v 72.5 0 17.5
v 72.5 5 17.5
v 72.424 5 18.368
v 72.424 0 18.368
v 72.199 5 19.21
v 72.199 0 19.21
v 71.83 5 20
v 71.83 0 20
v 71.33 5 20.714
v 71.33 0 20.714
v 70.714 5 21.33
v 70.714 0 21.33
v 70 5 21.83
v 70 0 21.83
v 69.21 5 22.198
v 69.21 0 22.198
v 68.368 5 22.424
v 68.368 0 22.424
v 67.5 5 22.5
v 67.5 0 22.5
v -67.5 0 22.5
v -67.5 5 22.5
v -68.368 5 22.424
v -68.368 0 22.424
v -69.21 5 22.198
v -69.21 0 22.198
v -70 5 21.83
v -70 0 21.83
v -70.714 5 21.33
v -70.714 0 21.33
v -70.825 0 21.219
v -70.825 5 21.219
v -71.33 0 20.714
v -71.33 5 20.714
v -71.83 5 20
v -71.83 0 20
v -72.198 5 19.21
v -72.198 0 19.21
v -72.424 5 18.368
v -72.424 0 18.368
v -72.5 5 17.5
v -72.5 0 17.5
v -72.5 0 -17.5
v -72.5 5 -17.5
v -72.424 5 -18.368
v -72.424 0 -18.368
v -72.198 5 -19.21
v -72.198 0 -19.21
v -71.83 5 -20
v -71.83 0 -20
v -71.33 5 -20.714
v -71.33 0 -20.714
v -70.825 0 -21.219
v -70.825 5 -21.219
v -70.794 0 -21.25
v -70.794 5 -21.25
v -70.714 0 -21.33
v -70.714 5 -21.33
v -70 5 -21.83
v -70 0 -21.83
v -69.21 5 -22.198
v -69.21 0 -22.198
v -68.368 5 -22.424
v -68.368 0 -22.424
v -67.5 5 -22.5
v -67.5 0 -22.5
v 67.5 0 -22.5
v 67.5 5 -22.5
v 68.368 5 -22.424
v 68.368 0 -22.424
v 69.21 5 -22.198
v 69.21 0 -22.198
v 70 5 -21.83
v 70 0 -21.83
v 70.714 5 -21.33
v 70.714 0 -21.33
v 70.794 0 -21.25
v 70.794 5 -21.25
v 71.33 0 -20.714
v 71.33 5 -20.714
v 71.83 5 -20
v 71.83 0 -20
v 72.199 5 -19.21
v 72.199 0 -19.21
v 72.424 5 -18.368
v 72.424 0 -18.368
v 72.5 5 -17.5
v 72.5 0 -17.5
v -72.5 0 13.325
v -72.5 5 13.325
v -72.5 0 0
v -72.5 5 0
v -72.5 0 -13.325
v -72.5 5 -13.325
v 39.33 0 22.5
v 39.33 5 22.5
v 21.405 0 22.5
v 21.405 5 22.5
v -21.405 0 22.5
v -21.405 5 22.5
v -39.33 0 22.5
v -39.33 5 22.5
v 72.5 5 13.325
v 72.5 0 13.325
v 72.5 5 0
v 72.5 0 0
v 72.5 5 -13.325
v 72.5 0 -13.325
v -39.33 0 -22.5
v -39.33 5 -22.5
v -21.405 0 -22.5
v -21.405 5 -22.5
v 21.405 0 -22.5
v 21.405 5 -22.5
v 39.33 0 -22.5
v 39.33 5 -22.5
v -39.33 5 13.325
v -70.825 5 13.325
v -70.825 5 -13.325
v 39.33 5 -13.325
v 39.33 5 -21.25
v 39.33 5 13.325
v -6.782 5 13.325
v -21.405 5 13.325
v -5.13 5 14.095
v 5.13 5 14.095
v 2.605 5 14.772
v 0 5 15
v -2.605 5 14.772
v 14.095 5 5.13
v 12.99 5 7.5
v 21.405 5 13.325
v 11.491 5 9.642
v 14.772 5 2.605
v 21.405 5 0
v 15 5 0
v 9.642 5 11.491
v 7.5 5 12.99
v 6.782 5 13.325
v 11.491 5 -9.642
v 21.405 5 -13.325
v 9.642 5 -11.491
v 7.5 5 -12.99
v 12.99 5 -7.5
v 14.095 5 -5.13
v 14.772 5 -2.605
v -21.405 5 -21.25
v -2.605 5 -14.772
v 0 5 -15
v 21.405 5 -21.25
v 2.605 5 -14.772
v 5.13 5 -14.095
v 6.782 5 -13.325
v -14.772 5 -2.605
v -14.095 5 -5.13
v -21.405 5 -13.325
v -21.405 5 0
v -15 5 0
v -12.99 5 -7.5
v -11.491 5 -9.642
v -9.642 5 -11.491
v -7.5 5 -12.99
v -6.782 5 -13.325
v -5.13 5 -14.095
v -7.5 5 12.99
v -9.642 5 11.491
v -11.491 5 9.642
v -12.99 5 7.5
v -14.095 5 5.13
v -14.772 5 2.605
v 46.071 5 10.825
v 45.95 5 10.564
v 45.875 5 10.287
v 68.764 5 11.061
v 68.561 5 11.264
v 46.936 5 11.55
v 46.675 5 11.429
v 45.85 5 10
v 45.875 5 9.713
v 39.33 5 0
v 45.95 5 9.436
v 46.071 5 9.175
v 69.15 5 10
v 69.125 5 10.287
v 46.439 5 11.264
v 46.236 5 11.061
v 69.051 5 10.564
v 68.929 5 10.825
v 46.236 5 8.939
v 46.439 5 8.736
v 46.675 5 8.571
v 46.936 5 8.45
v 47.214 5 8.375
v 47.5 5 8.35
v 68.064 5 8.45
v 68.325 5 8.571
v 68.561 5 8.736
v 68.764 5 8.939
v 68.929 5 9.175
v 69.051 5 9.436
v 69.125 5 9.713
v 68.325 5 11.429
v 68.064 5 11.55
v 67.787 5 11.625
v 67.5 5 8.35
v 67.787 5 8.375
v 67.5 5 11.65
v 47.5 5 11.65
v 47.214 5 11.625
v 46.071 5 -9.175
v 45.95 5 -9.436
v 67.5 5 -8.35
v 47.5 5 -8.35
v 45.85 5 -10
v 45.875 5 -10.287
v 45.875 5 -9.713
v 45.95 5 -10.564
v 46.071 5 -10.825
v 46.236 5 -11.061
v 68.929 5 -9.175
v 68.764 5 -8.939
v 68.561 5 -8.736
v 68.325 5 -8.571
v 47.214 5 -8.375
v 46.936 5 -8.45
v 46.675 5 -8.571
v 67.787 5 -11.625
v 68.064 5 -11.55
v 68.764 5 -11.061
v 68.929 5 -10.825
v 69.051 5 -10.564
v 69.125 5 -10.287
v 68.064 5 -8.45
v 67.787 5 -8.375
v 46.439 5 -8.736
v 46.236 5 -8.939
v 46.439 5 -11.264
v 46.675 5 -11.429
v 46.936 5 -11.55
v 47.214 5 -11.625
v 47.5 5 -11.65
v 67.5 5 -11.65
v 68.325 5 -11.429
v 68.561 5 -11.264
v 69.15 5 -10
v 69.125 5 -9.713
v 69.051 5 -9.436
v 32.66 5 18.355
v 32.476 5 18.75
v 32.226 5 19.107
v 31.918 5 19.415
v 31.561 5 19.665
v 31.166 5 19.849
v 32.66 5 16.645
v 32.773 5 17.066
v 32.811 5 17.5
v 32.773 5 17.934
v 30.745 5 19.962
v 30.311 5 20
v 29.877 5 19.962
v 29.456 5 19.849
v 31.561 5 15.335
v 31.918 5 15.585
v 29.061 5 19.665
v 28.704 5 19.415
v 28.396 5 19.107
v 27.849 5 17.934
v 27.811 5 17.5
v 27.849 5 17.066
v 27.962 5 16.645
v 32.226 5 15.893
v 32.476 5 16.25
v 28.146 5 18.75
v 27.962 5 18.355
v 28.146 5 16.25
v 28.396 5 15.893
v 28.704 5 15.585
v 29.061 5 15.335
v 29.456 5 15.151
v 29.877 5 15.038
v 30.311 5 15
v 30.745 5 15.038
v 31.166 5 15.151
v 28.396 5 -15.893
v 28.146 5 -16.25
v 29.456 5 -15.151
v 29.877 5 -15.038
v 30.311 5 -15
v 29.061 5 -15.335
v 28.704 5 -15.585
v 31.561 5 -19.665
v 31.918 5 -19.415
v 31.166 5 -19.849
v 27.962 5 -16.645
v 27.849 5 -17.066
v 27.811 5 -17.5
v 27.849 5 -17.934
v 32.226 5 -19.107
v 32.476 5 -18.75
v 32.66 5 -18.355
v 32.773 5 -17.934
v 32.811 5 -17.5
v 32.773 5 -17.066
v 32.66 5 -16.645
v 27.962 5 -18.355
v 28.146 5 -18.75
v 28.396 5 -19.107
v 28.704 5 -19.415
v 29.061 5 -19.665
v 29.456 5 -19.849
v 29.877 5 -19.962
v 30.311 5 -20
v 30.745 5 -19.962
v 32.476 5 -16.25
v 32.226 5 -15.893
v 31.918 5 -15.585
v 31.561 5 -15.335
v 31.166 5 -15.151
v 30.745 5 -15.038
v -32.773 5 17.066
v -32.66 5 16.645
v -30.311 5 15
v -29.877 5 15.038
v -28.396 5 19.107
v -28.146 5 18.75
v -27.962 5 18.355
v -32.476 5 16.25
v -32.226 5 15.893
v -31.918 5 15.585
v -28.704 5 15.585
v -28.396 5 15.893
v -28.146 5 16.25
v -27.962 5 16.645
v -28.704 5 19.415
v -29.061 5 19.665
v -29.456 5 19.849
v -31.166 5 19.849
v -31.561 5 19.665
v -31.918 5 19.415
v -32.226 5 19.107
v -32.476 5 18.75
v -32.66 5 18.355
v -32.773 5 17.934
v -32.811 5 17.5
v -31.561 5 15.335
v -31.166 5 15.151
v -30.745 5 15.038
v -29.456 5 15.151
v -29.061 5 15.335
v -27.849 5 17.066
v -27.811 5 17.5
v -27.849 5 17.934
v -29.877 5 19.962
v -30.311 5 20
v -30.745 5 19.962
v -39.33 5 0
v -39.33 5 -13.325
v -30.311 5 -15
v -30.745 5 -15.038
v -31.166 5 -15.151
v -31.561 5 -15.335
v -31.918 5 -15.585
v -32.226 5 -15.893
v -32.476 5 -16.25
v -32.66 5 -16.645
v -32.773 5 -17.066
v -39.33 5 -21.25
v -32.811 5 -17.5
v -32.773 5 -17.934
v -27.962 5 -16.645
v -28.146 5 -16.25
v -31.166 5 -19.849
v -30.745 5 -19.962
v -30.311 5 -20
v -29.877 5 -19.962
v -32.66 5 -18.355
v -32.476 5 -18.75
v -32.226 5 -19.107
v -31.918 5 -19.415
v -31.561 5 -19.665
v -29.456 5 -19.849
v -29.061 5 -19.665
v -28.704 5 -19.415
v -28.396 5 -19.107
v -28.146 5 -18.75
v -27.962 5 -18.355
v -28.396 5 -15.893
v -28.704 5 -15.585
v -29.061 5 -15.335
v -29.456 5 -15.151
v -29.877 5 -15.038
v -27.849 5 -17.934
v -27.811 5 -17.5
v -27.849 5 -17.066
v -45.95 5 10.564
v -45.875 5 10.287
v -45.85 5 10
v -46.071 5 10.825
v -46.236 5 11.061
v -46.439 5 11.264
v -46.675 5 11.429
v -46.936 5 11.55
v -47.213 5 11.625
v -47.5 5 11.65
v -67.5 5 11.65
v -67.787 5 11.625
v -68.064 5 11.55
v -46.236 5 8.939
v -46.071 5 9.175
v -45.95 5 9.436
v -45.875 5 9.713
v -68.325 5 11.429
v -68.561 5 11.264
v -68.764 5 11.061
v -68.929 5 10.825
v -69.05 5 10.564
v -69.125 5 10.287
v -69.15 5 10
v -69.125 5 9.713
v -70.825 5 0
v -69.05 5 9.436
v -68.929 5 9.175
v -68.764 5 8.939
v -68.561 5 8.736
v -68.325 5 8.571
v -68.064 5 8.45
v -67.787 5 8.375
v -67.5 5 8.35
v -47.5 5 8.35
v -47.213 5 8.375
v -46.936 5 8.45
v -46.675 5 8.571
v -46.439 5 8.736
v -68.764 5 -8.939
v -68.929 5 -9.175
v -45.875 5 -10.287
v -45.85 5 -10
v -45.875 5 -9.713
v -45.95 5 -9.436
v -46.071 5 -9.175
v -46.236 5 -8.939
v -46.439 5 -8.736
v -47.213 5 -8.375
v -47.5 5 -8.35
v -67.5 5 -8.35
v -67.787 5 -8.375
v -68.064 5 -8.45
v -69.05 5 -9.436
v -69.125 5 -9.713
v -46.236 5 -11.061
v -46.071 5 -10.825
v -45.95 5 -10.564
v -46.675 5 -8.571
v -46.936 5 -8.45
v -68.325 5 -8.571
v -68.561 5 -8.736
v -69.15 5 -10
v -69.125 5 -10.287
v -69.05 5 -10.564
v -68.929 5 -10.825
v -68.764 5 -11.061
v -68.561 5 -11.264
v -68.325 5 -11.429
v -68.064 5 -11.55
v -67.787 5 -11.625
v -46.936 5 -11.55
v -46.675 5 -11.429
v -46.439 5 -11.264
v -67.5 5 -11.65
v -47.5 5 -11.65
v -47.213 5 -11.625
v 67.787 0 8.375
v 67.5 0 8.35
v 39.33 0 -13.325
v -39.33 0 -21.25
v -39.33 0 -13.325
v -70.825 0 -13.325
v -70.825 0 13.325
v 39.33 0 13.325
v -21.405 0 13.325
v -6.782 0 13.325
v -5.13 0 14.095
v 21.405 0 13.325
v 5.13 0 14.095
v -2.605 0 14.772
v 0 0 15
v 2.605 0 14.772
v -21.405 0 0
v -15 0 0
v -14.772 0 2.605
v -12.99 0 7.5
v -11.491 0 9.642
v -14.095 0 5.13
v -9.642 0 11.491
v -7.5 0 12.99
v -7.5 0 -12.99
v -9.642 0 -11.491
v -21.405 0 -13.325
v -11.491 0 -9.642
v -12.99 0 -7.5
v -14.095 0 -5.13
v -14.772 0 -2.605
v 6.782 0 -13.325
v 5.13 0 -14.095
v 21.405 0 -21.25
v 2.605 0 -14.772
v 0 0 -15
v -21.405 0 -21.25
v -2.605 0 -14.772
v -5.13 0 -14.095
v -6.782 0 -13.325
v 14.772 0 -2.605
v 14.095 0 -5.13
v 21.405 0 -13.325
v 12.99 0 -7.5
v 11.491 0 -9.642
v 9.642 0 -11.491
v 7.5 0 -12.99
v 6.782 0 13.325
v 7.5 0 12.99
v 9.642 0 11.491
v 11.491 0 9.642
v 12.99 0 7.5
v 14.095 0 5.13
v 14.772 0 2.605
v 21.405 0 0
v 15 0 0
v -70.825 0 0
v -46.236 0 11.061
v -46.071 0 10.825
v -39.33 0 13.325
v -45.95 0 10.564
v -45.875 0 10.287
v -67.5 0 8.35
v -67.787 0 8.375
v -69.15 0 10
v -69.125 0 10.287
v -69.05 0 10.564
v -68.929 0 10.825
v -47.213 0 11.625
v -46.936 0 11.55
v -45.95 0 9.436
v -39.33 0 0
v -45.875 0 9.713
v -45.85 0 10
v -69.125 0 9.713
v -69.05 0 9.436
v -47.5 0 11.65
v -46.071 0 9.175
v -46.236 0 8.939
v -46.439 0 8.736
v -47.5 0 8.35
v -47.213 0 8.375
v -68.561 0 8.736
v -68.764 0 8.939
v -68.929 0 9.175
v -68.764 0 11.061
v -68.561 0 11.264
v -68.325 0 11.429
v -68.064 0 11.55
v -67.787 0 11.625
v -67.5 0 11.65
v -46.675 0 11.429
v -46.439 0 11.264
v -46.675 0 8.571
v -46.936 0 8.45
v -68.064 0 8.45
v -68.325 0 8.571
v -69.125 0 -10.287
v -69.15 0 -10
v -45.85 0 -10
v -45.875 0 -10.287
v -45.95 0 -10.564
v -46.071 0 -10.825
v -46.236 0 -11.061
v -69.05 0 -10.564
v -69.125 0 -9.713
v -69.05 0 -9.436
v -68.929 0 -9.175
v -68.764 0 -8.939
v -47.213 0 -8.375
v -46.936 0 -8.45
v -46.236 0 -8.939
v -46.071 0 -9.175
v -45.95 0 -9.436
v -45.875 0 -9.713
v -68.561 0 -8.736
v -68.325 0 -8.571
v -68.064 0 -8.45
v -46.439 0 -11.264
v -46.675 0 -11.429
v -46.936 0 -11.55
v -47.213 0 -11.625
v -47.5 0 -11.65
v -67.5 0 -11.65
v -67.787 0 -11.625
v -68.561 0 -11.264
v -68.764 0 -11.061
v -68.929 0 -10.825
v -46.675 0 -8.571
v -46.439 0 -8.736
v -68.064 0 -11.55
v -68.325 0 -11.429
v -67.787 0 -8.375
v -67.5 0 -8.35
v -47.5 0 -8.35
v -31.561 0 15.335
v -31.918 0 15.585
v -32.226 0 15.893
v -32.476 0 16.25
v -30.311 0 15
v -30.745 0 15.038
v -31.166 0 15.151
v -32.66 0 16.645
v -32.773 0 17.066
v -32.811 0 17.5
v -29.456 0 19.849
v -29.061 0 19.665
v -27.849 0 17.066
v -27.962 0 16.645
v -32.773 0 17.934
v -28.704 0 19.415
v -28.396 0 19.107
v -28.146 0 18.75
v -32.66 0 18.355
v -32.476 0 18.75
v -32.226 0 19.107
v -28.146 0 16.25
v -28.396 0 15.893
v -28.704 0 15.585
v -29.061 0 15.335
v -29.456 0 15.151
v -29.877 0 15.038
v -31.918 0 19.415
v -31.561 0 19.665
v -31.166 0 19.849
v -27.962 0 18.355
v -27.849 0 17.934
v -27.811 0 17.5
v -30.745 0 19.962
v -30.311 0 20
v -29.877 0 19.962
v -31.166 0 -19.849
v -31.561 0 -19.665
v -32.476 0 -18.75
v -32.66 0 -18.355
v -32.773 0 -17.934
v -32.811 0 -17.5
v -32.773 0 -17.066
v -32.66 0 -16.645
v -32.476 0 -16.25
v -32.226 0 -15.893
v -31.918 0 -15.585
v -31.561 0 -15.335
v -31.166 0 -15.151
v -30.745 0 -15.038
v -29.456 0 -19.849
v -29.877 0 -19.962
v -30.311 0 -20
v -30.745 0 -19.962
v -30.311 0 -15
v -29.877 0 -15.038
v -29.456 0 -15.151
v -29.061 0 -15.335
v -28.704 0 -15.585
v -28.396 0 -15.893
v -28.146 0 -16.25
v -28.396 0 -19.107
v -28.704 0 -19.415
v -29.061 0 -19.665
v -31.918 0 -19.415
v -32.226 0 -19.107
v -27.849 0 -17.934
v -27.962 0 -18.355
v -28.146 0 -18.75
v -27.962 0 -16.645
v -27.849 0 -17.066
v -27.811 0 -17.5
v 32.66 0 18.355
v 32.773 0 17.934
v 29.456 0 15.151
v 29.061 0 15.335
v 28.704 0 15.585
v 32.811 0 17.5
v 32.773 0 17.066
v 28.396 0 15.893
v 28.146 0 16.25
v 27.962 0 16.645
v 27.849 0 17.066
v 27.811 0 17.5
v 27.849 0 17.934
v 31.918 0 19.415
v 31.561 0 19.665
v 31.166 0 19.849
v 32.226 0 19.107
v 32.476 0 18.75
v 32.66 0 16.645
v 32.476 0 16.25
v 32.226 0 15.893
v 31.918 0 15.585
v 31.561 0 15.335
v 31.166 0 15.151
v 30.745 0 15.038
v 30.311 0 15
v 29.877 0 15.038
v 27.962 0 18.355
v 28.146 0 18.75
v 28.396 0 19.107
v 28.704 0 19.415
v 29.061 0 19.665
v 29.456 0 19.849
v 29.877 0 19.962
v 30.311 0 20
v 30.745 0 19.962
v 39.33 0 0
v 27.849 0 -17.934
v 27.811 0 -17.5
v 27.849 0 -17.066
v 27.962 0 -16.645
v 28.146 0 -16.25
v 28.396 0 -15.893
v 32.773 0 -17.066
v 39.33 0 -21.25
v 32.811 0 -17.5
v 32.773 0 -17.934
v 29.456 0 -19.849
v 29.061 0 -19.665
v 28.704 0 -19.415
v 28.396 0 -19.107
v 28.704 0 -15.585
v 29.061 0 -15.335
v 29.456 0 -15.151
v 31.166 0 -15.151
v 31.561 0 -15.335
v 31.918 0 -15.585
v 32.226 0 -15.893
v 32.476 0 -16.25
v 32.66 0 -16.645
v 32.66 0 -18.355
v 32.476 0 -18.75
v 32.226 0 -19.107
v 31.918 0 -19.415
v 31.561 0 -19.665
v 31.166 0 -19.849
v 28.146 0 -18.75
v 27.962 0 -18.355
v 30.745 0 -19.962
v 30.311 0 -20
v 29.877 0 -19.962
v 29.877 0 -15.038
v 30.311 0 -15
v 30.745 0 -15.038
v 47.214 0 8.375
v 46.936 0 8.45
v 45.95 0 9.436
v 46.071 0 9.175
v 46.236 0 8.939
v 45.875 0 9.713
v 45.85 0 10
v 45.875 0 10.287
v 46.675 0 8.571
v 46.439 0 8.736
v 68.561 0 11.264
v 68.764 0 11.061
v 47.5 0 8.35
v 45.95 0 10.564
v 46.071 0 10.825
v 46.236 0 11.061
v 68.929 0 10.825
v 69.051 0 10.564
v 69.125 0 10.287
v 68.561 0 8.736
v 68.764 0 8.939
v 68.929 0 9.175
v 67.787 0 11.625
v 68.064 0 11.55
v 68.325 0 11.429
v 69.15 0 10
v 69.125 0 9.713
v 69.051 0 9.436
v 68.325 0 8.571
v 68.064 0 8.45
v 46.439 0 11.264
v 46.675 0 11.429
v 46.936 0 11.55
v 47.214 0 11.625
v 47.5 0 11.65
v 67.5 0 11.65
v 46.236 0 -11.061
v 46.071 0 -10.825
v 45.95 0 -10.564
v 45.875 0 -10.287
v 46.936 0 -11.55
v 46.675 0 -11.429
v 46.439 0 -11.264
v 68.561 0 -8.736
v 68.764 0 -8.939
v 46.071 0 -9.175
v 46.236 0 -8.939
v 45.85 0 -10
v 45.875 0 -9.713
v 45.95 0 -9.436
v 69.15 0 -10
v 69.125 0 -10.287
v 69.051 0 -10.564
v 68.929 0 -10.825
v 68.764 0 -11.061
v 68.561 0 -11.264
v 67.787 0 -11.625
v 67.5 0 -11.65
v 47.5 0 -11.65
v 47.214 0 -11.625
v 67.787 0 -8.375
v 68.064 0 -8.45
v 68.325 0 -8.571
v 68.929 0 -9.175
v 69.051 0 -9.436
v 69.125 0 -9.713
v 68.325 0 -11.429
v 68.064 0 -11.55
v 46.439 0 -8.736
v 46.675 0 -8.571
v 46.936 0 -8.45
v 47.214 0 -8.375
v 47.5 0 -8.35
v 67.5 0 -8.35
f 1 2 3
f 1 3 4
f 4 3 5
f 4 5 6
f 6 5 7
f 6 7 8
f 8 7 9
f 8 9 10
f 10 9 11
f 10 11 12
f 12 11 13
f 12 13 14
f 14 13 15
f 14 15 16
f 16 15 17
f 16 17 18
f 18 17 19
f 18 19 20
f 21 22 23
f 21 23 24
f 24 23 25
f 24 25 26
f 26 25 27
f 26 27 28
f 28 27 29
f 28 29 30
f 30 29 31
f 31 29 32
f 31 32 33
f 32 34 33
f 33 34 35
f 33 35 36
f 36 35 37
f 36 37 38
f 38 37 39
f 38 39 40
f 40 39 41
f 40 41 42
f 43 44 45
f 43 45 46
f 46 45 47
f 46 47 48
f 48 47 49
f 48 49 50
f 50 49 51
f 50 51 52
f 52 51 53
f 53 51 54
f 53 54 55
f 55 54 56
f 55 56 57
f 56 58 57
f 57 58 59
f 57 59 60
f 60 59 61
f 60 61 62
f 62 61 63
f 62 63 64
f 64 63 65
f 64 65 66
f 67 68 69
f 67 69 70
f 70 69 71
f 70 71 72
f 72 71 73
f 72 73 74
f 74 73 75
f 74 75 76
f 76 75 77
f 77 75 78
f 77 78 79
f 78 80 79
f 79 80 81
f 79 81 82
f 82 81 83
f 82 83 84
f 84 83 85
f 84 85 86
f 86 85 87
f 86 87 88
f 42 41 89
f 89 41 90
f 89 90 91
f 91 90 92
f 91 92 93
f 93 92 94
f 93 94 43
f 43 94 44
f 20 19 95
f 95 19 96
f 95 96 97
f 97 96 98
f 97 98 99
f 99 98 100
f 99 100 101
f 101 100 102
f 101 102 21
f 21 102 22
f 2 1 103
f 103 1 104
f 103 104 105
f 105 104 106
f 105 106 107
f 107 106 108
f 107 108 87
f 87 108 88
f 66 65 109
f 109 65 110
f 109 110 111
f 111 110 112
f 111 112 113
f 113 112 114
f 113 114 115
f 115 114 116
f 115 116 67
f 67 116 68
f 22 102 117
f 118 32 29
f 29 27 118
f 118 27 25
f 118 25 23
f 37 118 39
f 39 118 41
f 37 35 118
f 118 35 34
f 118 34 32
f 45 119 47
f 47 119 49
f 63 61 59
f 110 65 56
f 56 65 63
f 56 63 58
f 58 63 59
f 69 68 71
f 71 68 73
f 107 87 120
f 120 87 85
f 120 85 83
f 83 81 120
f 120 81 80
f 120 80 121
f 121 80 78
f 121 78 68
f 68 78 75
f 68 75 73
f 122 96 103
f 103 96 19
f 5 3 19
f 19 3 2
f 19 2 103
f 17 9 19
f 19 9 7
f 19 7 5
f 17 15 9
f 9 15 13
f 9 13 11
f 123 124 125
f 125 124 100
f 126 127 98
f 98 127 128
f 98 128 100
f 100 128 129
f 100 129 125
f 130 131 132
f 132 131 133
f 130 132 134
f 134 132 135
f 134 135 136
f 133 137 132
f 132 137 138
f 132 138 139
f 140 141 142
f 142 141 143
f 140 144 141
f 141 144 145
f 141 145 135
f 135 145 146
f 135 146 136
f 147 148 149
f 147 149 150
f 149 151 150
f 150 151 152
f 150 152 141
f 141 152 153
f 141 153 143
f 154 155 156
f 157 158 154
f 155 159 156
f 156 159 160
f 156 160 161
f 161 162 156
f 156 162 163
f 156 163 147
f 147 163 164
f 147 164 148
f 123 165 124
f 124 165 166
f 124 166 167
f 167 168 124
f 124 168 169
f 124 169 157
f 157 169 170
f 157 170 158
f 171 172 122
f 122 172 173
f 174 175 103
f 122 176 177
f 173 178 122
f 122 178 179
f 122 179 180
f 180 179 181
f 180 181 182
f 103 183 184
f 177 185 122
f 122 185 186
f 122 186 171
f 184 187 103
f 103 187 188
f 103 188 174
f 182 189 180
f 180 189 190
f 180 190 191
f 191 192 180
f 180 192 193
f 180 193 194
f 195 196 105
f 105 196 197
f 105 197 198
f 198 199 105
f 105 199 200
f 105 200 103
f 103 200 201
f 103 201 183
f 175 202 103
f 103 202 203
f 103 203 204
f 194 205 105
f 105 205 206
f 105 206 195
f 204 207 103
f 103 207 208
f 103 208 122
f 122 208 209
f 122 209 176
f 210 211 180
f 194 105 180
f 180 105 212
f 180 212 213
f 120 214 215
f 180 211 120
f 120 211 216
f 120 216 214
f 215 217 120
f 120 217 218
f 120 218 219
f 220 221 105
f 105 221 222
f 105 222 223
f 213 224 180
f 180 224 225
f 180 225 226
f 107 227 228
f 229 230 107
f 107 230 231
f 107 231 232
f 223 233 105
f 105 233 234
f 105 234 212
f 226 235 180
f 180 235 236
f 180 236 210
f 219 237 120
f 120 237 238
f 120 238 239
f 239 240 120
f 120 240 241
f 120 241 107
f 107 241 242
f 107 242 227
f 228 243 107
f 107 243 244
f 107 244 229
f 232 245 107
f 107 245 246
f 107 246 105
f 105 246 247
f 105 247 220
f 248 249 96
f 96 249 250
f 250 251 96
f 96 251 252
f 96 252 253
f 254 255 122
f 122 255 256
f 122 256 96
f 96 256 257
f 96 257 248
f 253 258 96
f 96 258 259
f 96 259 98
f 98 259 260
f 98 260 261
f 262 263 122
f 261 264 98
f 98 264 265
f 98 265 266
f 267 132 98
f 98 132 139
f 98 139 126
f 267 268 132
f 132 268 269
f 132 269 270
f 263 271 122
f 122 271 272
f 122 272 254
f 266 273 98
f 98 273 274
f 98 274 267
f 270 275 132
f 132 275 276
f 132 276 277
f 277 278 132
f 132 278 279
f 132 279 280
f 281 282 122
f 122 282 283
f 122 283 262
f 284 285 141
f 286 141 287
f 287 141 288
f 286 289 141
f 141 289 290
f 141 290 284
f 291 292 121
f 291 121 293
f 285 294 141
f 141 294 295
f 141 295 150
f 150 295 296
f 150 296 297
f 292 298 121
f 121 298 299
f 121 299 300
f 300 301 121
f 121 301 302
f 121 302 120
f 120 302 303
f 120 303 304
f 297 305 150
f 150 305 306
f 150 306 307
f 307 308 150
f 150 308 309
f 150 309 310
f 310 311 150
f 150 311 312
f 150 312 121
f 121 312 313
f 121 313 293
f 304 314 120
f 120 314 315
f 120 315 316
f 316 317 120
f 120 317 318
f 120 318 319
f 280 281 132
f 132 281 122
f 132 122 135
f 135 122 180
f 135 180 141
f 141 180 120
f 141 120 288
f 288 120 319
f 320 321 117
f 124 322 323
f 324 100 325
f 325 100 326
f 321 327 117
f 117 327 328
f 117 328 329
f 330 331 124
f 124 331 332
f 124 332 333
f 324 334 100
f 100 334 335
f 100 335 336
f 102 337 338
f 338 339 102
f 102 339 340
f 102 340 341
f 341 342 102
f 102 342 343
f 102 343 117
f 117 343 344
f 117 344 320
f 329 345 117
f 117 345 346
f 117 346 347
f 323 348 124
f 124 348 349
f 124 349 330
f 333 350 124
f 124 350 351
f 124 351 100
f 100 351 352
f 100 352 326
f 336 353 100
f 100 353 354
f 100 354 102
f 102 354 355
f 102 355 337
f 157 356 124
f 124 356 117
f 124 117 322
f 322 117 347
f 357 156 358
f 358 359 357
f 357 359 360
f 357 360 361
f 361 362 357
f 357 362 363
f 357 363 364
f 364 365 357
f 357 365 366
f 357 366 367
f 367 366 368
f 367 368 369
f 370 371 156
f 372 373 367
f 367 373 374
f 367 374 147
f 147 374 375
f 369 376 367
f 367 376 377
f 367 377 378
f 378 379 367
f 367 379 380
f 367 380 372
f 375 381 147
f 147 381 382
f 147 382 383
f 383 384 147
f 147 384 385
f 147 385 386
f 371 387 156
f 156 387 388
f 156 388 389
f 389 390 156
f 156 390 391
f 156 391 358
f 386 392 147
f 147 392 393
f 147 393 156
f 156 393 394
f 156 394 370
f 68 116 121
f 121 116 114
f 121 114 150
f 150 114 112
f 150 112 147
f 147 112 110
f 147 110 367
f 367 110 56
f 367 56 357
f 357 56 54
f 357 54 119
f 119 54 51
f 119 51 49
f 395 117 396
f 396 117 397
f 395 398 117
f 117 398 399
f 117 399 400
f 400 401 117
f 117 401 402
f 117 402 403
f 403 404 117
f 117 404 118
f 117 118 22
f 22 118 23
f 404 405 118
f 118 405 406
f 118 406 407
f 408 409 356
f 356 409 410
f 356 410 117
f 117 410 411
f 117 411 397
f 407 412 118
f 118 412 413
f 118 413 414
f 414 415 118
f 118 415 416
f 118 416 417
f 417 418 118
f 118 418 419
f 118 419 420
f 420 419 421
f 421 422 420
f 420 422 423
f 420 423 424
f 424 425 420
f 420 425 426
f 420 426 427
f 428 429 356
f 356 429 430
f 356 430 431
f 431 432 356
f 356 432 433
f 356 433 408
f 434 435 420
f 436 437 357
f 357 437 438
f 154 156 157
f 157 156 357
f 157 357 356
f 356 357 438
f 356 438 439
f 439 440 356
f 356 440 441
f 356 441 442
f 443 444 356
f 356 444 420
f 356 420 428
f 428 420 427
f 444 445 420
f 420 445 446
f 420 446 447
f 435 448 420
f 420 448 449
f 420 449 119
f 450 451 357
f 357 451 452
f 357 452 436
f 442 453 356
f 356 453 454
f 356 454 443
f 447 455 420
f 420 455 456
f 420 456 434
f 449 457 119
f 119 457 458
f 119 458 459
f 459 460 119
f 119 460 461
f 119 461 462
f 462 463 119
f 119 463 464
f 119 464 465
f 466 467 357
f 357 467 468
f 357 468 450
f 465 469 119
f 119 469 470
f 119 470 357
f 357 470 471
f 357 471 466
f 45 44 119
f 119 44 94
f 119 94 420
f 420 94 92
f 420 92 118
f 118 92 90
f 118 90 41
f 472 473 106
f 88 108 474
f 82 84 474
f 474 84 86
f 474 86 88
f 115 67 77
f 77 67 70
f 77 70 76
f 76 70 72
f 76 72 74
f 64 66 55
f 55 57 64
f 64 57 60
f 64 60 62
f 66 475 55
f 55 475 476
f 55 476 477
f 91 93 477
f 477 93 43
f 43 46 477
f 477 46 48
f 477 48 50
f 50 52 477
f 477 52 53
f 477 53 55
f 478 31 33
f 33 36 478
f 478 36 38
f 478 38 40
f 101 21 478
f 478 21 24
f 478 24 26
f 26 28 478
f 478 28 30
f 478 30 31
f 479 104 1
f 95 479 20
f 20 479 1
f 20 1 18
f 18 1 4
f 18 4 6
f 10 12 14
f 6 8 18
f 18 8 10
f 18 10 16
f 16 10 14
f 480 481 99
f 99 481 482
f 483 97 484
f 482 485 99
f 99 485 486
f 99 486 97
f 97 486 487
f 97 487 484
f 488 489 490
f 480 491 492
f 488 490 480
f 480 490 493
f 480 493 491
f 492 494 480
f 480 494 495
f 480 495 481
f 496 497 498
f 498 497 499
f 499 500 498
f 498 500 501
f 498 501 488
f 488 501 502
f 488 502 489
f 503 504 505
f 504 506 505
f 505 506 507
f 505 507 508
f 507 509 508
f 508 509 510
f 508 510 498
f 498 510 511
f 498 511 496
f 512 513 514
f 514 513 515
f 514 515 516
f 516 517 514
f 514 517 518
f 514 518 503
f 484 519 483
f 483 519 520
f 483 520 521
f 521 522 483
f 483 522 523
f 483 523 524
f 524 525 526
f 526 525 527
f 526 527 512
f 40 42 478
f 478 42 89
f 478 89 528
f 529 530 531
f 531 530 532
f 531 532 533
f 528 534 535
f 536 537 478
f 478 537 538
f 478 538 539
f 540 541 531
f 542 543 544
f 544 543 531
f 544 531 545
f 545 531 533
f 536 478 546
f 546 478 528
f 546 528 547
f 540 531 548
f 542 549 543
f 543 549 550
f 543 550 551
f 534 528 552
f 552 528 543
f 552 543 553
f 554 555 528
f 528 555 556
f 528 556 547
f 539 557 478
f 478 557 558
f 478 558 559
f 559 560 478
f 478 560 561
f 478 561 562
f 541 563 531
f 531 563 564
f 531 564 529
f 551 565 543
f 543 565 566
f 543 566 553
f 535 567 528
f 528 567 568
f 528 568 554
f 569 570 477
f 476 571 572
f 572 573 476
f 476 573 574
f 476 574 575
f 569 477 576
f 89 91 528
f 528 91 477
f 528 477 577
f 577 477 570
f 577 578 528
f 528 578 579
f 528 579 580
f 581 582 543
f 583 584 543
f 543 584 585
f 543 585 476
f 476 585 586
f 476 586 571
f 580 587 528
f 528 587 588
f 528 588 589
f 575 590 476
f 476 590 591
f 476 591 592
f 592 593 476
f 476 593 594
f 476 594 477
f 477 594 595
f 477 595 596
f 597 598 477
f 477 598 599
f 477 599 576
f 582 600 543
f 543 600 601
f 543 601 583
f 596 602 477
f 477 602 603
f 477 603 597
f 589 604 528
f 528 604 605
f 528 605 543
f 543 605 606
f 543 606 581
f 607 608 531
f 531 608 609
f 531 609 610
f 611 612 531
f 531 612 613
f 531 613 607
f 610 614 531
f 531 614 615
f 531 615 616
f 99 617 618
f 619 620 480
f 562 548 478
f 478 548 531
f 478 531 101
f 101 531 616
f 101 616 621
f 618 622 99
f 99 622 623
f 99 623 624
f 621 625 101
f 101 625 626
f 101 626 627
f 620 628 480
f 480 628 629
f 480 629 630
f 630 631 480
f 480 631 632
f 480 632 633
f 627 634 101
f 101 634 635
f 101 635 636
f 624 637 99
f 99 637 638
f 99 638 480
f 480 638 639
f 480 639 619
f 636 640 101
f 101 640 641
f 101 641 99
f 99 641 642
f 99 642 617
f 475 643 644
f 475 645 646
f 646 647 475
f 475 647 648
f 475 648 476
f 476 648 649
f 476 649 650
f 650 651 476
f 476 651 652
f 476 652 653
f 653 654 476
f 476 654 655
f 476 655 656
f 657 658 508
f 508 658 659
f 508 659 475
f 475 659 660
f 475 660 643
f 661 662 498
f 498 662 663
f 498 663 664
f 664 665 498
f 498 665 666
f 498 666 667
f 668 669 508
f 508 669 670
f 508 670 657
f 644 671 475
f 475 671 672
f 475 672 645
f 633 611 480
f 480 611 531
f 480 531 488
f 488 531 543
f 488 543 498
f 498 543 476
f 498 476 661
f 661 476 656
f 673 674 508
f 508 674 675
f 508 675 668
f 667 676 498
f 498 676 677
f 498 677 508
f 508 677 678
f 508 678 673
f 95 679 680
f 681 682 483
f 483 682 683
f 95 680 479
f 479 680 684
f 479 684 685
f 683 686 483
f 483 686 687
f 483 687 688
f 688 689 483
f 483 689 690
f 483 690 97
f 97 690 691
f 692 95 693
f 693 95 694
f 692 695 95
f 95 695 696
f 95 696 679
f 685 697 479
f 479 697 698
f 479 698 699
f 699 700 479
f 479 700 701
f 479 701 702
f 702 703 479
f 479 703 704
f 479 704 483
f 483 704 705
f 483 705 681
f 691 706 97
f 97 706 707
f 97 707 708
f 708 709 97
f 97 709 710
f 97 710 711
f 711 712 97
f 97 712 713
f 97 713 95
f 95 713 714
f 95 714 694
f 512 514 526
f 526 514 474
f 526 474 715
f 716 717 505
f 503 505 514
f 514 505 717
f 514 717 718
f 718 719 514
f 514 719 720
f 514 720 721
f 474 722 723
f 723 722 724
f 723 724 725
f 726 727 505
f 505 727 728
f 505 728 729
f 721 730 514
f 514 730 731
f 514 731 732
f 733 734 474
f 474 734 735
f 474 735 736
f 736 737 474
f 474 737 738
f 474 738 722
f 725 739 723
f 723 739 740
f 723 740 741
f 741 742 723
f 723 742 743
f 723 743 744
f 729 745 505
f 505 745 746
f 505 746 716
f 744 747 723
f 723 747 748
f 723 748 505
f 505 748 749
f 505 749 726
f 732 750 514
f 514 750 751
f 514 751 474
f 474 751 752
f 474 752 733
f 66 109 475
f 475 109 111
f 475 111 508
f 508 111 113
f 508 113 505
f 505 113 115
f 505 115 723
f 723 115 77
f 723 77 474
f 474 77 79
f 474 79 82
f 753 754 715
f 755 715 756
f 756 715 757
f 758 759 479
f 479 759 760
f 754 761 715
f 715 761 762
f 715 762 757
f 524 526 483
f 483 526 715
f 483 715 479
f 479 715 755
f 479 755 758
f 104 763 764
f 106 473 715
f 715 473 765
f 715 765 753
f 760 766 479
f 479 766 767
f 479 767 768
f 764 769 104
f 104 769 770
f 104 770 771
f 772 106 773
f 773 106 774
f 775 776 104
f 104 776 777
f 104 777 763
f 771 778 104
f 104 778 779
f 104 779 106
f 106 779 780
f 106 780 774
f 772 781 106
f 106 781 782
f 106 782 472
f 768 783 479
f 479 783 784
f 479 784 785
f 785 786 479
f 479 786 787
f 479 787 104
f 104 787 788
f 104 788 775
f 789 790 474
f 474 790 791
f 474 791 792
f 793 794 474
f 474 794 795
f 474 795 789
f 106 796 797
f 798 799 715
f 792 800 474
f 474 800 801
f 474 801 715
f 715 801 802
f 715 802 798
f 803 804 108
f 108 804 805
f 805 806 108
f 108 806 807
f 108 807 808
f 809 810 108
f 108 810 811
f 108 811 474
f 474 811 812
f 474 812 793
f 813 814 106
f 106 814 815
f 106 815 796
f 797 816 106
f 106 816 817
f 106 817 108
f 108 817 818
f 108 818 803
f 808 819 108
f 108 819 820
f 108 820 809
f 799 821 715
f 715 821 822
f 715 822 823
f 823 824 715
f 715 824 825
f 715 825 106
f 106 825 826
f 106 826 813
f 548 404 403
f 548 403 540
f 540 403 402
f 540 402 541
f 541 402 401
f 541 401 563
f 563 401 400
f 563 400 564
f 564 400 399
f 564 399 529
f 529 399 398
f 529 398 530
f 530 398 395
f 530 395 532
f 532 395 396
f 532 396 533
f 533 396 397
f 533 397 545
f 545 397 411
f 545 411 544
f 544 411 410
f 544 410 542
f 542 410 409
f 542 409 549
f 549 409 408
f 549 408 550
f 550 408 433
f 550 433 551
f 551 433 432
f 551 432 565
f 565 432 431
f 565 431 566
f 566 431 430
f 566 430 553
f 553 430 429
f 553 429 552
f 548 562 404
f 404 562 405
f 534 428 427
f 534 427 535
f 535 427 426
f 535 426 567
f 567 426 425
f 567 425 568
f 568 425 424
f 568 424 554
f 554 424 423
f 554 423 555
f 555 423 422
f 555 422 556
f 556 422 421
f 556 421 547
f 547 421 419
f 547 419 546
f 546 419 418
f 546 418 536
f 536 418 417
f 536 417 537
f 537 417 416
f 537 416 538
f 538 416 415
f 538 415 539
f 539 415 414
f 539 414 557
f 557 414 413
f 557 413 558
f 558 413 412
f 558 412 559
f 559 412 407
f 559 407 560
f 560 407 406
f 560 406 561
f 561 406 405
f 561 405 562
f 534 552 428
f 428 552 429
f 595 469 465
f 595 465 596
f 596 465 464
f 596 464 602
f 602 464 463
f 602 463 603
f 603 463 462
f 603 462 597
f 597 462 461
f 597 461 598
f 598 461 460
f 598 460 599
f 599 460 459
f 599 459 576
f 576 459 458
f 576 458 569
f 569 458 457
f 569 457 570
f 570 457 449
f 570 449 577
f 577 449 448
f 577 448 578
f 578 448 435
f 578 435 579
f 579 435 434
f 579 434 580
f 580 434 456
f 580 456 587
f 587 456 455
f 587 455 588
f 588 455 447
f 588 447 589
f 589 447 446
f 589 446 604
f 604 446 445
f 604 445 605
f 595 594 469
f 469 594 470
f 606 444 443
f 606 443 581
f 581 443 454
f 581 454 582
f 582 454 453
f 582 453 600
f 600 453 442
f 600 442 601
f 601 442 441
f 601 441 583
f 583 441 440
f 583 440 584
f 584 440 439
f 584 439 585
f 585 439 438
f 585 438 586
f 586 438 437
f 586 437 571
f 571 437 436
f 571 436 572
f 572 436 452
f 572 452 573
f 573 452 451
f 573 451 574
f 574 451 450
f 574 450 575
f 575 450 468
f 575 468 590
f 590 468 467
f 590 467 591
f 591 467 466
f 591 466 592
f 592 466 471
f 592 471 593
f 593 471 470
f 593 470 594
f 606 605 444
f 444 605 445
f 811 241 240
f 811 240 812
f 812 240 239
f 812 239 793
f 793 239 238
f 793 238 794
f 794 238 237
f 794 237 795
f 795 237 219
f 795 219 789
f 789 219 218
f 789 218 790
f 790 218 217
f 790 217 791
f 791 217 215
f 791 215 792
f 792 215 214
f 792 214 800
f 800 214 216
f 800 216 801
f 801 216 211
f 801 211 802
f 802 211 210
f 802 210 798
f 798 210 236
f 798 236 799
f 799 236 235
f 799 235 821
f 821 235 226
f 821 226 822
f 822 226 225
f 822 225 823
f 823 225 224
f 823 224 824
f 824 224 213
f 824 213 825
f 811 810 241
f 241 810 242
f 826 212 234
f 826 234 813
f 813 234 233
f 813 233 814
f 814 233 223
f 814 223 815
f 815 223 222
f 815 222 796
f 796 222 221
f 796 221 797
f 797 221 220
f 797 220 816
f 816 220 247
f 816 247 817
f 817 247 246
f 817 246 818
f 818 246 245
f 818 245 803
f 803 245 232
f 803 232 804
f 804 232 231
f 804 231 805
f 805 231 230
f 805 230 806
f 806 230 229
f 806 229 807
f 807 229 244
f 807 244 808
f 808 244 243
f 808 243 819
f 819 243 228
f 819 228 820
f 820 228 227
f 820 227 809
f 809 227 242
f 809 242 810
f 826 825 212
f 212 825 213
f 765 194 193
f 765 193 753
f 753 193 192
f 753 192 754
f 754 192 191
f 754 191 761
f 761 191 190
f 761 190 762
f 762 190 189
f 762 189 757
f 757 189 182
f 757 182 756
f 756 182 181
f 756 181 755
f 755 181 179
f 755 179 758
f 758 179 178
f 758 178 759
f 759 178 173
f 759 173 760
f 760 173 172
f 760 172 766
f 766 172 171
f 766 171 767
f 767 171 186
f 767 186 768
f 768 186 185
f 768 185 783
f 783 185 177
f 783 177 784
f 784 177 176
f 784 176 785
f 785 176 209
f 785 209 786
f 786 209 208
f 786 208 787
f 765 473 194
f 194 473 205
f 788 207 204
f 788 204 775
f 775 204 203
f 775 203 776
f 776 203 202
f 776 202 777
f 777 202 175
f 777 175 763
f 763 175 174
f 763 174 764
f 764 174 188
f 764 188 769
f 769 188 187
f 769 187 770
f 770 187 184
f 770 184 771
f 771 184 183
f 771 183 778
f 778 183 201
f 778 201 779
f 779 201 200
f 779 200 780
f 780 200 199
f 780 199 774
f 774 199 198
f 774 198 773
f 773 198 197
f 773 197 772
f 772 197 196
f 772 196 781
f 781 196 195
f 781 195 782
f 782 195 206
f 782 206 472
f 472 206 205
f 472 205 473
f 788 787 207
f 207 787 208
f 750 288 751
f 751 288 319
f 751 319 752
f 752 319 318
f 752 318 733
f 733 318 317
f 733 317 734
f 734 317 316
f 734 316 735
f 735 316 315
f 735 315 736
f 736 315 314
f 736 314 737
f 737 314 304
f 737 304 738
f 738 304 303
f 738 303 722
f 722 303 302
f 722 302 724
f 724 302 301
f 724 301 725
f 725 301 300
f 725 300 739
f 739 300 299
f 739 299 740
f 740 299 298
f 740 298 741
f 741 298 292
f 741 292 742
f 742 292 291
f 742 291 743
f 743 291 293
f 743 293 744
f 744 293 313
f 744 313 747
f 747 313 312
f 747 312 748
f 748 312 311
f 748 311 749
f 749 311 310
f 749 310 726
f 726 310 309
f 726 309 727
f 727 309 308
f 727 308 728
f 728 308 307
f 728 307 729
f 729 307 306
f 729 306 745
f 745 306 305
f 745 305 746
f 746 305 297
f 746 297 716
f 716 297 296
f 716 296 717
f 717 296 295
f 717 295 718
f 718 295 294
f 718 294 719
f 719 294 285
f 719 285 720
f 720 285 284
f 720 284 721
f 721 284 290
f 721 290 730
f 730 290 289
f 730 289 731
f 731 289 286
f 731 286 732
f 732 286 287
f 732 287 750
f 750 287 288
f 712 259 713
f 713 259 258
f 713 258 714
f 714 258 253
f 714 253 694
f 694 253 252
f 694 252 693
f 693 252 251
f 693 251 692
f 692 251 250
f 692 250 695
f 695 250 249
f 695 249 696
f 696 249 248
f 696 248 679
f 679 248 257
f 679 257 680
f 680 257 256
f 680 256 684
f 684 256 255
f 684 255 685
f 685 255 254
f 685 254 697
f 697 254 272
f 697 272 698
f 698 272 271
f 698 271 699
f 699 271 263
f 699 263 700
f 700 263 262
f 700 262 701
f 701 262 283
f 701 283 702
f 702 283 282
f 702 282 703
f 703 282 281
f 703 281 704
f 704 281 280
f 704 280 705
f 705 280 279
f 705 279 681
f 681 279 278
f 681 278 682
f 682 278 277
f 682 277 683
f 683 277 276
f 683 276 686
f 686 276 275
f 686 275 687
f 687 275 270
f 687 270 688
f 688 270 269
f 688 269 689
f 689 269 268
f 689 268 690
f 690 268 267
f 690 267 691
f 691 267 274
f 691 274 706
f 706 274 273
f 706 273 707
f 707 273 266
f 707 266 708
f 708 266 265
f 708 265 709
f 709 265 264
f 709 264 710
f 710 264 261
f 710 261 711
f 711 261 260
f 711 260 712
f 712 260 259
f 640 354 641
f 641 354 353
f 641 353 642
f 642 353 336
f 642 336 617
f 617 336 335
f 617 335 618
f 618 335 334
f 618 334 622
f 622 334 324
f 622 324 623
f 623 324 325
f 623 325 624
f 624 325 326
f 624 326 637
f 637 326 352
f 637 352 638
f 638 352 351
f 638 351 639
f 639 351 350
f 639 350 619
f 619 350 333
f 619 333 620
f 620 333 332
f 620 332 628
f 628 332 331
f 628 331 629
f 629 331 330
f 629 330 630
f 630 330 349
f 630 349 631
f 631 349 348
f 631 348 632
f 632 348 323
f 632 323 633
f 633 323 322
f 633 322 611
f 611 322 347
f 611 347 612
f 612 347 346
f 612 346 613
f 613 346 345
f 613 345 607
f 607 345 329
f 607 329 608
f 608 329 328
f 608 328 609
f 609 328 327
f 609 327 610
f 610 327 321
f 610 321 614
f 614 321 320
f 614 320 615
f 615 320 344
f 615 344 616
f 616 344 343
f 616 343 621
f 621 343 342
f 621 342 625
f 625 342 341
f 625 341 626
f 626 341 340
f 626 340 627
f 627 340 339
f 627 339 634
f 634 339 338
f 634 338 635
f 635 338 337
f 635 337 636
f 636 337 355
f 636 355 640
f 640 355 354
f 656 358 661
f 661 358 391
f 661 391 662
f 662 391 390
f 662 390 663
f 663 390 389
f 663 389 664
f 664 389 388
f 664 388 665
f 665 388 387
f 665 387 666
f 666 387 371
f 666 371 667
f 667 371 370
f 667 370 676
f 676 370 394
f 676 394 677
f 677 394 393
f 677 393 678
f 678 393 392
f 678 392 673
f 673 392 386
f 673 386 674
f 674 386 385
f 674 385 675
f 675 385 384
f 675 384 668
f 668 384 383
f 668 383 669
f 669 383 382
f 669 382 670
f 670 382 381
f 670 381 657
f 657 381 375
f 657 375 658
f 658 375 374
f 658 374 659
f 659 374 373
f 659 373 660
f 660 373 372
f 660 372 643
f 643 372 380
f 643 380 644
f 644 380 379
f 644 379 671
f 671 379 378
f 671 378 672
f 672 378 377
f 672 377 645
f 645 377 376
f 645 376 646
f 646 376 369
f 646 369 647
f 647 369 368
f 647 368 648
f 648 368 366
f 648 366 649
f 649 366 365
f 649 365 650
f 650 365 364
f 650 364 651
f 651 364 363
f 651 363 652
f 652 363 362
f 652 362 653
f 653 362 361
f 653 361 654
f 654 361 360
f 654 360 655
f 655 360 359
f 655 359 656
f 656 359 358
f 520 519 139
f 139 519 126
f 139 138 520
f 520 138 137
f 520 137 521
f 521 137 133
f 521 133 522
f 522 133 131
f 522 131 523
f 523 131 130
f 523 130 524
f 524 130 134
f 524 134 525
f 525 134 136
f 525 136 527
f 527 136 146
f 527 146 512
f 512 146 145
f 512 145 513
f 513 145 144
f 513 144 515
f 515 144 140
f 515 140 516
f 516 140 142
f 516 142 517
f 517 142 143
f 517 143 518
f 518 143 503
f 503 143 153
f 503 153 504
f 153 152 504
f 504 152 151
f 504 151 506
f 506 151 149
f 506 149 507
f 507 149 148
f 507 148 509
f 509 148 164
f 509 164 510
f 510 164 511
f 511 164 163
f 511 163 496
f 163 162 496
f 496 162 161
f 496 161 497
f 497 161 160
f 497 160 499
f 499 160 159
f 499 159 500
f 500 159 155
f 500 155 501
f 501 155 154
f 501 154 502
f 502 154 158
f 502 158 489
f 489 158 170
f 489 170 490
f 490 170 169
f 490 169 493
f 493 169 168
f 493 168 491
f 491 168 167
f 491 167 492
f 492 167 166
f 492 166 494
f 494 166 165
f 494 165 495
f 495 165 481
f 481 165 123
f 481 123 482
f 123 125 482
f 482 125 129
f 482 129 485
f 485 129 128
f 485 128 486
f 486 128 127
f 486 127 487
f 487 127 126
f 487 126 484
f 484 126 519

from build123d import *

# Parameters (mm, degrees)
SKETCH1_W           = 145
SKETCH1_H           = 45
BOSS_EXTRUDE1_DEPTH = 5
CUT_EXTRUDE1_DEPTH  = 77.075620274
FILLET1_R           = 5
FILLET2_R           = 5
FILLET3_R           = 5
FILLET4_R           = 5
SKETCH3_R           = 2.5
CUT_EXTRUDE2_DEPTH  = 77.075620274
SKETCH4_R           = 15
CUT_EXTRUDE3_DEPTH  = 77.075620274


with BuildPart() as part:
    # Sketch1 → Boss-Extrude1 (new body)
    with BuildSketch(Plane(origin=(0, 0, 0), x_dir=(1, 0, 0), z_dir=(0, 1, 0))):
        Rectangle(SKETCH1_W, SKETCH1_H)
    extrude(amount=BOSS_EXTRUDE1_DEPTH)

    # Sketch2 → Cut-Extrude1 (cut, through all)
    with BuildSketch(Plane(origin=(0, 5, 0), x_dir=(1, 0, 0), z_dir=(0, 1, 0))):
        with BuildLine():
            Line((-67.5, 8.35), (-47.5, 8.35))
            ThreePointArc((-47.5, 8.35), (-45.85, 10), (-47.5, 11.65))
            Line((-47.5, 11.65), (-67.5, 11.65))
            ThreePointArc((-67.5, 11.65), (-69.15, 10), (-67.5, 8.35))
        make_face()
        with BuildLine():
            Line((-47.5, -11.65), (-67.5, -11.65))
            ThreePointArc((-67.5, -11.65), (-69.15, -10), (-67.5, -8.35))
            Line((-67.5, -8.35), (-47.5, -8.35))
            ThreePointArc((-47.5, -8.35), (-45.85, -10), (-47.5, -11.65))
        make_face()
        with BuildLine():
            Line((47.5, 11.65), (67.5, 11.65))
            ThreePointArc((67.5, 11.65), (69.15, 10), (67.5, 8.35))
            Line((67.5, 8.35), (47.5, 8.35))
            ThreePointArc((47.5, 8.35), (45.85, 10), (47.5, 11.65))
        make_face()
        with BuildLine():
            Line((47.5, -11.65), (67.5, -11.65))
            ThreePointArc((67.5, -11.65), (69.15, -10), (67.5, -8.35))
            Line((67.5, -8.35), (47.5, -8.35))
            ThreePointArc((47.5, -8.35), (45.85, -10), (47.5, -11.65))
        make_face()
    extrude(amount=-CUT_EXTRUDE1_DEPTH, mode=Mode.SUBTRACT)

    # Fillet1
    fillet1_edges = [part.edges().sort_by_distance(p)[0] for p in [
        (72.5, 2.5, -22.5),
    ]]
    fillet(fillet1_edges, radius=FILLET1_R)

    # Fillet2
    fillet2_edges = [part.edges().sort_by_distance(p)[0] for p in [
        (-72.5, 2.5, -22.5),
    ]]
    fillet(fillet2_edges, radius=FILLET2_R)

    # Fillet3
    fillet3_edges = [part.edges().sort_by_distance(p)[0] for p in [
        (-72.5, 2.5, 22.5),
    ]]
    fillet(fillet3_edges, radius=FILLET3_R)

    # Fillet4
    fillet4_edges = [part.edges().sort_by_distance(p)[0] for p in [
        (72.5, 2.5, 22.5),
    ]]
    fillet(fillet4_edges, radius=FILLET4_R)

    # Sketch3 → Cut-Extrude2 (cut, through all)
    with BuildSketch(Plane(origin=(0, 5, 0), x_dir=(1, 0, 0), z_dir=(0, 1, 0))):
        with Locations(Location((30.310889132, 17.5, 0), (0, 0, 270))):
            Circle(SKETCH3_R)
        with Locations(Location((30.310889132, -17.5, 0), (0, 0, 270))):
            Circle(SKETCH3_R)
        with Locations(Location((-30.310889132, -17.5, 0), (0, 0, 270))):
            Circle(SKETCH3_R)
        with Locations(Location((-30.310889132, 17.5, 0), (0, 0, 270))):
            Circle(SKETCH3_R)
    extrude(amount=-CUT_EXTRUDE2_DEPTH, mode=Mode.SUBTRACT)

    # Sketch4 → Cut-Extrude3 (cut, through all)
    with BuildSketch(Plane(origin=(0, 5, 0), x_dir=(1, 0, 0), z_dir=(0, 1, 0))):
        with Locations(Location((0, 0, 0), (0, 0, 270))):
            Circle(SKETCH4_R)
    extrude(amount=-CUT_EXTRUDE3_DEPTH, mode=Mode.SUBTRACT)


solid = part.part
